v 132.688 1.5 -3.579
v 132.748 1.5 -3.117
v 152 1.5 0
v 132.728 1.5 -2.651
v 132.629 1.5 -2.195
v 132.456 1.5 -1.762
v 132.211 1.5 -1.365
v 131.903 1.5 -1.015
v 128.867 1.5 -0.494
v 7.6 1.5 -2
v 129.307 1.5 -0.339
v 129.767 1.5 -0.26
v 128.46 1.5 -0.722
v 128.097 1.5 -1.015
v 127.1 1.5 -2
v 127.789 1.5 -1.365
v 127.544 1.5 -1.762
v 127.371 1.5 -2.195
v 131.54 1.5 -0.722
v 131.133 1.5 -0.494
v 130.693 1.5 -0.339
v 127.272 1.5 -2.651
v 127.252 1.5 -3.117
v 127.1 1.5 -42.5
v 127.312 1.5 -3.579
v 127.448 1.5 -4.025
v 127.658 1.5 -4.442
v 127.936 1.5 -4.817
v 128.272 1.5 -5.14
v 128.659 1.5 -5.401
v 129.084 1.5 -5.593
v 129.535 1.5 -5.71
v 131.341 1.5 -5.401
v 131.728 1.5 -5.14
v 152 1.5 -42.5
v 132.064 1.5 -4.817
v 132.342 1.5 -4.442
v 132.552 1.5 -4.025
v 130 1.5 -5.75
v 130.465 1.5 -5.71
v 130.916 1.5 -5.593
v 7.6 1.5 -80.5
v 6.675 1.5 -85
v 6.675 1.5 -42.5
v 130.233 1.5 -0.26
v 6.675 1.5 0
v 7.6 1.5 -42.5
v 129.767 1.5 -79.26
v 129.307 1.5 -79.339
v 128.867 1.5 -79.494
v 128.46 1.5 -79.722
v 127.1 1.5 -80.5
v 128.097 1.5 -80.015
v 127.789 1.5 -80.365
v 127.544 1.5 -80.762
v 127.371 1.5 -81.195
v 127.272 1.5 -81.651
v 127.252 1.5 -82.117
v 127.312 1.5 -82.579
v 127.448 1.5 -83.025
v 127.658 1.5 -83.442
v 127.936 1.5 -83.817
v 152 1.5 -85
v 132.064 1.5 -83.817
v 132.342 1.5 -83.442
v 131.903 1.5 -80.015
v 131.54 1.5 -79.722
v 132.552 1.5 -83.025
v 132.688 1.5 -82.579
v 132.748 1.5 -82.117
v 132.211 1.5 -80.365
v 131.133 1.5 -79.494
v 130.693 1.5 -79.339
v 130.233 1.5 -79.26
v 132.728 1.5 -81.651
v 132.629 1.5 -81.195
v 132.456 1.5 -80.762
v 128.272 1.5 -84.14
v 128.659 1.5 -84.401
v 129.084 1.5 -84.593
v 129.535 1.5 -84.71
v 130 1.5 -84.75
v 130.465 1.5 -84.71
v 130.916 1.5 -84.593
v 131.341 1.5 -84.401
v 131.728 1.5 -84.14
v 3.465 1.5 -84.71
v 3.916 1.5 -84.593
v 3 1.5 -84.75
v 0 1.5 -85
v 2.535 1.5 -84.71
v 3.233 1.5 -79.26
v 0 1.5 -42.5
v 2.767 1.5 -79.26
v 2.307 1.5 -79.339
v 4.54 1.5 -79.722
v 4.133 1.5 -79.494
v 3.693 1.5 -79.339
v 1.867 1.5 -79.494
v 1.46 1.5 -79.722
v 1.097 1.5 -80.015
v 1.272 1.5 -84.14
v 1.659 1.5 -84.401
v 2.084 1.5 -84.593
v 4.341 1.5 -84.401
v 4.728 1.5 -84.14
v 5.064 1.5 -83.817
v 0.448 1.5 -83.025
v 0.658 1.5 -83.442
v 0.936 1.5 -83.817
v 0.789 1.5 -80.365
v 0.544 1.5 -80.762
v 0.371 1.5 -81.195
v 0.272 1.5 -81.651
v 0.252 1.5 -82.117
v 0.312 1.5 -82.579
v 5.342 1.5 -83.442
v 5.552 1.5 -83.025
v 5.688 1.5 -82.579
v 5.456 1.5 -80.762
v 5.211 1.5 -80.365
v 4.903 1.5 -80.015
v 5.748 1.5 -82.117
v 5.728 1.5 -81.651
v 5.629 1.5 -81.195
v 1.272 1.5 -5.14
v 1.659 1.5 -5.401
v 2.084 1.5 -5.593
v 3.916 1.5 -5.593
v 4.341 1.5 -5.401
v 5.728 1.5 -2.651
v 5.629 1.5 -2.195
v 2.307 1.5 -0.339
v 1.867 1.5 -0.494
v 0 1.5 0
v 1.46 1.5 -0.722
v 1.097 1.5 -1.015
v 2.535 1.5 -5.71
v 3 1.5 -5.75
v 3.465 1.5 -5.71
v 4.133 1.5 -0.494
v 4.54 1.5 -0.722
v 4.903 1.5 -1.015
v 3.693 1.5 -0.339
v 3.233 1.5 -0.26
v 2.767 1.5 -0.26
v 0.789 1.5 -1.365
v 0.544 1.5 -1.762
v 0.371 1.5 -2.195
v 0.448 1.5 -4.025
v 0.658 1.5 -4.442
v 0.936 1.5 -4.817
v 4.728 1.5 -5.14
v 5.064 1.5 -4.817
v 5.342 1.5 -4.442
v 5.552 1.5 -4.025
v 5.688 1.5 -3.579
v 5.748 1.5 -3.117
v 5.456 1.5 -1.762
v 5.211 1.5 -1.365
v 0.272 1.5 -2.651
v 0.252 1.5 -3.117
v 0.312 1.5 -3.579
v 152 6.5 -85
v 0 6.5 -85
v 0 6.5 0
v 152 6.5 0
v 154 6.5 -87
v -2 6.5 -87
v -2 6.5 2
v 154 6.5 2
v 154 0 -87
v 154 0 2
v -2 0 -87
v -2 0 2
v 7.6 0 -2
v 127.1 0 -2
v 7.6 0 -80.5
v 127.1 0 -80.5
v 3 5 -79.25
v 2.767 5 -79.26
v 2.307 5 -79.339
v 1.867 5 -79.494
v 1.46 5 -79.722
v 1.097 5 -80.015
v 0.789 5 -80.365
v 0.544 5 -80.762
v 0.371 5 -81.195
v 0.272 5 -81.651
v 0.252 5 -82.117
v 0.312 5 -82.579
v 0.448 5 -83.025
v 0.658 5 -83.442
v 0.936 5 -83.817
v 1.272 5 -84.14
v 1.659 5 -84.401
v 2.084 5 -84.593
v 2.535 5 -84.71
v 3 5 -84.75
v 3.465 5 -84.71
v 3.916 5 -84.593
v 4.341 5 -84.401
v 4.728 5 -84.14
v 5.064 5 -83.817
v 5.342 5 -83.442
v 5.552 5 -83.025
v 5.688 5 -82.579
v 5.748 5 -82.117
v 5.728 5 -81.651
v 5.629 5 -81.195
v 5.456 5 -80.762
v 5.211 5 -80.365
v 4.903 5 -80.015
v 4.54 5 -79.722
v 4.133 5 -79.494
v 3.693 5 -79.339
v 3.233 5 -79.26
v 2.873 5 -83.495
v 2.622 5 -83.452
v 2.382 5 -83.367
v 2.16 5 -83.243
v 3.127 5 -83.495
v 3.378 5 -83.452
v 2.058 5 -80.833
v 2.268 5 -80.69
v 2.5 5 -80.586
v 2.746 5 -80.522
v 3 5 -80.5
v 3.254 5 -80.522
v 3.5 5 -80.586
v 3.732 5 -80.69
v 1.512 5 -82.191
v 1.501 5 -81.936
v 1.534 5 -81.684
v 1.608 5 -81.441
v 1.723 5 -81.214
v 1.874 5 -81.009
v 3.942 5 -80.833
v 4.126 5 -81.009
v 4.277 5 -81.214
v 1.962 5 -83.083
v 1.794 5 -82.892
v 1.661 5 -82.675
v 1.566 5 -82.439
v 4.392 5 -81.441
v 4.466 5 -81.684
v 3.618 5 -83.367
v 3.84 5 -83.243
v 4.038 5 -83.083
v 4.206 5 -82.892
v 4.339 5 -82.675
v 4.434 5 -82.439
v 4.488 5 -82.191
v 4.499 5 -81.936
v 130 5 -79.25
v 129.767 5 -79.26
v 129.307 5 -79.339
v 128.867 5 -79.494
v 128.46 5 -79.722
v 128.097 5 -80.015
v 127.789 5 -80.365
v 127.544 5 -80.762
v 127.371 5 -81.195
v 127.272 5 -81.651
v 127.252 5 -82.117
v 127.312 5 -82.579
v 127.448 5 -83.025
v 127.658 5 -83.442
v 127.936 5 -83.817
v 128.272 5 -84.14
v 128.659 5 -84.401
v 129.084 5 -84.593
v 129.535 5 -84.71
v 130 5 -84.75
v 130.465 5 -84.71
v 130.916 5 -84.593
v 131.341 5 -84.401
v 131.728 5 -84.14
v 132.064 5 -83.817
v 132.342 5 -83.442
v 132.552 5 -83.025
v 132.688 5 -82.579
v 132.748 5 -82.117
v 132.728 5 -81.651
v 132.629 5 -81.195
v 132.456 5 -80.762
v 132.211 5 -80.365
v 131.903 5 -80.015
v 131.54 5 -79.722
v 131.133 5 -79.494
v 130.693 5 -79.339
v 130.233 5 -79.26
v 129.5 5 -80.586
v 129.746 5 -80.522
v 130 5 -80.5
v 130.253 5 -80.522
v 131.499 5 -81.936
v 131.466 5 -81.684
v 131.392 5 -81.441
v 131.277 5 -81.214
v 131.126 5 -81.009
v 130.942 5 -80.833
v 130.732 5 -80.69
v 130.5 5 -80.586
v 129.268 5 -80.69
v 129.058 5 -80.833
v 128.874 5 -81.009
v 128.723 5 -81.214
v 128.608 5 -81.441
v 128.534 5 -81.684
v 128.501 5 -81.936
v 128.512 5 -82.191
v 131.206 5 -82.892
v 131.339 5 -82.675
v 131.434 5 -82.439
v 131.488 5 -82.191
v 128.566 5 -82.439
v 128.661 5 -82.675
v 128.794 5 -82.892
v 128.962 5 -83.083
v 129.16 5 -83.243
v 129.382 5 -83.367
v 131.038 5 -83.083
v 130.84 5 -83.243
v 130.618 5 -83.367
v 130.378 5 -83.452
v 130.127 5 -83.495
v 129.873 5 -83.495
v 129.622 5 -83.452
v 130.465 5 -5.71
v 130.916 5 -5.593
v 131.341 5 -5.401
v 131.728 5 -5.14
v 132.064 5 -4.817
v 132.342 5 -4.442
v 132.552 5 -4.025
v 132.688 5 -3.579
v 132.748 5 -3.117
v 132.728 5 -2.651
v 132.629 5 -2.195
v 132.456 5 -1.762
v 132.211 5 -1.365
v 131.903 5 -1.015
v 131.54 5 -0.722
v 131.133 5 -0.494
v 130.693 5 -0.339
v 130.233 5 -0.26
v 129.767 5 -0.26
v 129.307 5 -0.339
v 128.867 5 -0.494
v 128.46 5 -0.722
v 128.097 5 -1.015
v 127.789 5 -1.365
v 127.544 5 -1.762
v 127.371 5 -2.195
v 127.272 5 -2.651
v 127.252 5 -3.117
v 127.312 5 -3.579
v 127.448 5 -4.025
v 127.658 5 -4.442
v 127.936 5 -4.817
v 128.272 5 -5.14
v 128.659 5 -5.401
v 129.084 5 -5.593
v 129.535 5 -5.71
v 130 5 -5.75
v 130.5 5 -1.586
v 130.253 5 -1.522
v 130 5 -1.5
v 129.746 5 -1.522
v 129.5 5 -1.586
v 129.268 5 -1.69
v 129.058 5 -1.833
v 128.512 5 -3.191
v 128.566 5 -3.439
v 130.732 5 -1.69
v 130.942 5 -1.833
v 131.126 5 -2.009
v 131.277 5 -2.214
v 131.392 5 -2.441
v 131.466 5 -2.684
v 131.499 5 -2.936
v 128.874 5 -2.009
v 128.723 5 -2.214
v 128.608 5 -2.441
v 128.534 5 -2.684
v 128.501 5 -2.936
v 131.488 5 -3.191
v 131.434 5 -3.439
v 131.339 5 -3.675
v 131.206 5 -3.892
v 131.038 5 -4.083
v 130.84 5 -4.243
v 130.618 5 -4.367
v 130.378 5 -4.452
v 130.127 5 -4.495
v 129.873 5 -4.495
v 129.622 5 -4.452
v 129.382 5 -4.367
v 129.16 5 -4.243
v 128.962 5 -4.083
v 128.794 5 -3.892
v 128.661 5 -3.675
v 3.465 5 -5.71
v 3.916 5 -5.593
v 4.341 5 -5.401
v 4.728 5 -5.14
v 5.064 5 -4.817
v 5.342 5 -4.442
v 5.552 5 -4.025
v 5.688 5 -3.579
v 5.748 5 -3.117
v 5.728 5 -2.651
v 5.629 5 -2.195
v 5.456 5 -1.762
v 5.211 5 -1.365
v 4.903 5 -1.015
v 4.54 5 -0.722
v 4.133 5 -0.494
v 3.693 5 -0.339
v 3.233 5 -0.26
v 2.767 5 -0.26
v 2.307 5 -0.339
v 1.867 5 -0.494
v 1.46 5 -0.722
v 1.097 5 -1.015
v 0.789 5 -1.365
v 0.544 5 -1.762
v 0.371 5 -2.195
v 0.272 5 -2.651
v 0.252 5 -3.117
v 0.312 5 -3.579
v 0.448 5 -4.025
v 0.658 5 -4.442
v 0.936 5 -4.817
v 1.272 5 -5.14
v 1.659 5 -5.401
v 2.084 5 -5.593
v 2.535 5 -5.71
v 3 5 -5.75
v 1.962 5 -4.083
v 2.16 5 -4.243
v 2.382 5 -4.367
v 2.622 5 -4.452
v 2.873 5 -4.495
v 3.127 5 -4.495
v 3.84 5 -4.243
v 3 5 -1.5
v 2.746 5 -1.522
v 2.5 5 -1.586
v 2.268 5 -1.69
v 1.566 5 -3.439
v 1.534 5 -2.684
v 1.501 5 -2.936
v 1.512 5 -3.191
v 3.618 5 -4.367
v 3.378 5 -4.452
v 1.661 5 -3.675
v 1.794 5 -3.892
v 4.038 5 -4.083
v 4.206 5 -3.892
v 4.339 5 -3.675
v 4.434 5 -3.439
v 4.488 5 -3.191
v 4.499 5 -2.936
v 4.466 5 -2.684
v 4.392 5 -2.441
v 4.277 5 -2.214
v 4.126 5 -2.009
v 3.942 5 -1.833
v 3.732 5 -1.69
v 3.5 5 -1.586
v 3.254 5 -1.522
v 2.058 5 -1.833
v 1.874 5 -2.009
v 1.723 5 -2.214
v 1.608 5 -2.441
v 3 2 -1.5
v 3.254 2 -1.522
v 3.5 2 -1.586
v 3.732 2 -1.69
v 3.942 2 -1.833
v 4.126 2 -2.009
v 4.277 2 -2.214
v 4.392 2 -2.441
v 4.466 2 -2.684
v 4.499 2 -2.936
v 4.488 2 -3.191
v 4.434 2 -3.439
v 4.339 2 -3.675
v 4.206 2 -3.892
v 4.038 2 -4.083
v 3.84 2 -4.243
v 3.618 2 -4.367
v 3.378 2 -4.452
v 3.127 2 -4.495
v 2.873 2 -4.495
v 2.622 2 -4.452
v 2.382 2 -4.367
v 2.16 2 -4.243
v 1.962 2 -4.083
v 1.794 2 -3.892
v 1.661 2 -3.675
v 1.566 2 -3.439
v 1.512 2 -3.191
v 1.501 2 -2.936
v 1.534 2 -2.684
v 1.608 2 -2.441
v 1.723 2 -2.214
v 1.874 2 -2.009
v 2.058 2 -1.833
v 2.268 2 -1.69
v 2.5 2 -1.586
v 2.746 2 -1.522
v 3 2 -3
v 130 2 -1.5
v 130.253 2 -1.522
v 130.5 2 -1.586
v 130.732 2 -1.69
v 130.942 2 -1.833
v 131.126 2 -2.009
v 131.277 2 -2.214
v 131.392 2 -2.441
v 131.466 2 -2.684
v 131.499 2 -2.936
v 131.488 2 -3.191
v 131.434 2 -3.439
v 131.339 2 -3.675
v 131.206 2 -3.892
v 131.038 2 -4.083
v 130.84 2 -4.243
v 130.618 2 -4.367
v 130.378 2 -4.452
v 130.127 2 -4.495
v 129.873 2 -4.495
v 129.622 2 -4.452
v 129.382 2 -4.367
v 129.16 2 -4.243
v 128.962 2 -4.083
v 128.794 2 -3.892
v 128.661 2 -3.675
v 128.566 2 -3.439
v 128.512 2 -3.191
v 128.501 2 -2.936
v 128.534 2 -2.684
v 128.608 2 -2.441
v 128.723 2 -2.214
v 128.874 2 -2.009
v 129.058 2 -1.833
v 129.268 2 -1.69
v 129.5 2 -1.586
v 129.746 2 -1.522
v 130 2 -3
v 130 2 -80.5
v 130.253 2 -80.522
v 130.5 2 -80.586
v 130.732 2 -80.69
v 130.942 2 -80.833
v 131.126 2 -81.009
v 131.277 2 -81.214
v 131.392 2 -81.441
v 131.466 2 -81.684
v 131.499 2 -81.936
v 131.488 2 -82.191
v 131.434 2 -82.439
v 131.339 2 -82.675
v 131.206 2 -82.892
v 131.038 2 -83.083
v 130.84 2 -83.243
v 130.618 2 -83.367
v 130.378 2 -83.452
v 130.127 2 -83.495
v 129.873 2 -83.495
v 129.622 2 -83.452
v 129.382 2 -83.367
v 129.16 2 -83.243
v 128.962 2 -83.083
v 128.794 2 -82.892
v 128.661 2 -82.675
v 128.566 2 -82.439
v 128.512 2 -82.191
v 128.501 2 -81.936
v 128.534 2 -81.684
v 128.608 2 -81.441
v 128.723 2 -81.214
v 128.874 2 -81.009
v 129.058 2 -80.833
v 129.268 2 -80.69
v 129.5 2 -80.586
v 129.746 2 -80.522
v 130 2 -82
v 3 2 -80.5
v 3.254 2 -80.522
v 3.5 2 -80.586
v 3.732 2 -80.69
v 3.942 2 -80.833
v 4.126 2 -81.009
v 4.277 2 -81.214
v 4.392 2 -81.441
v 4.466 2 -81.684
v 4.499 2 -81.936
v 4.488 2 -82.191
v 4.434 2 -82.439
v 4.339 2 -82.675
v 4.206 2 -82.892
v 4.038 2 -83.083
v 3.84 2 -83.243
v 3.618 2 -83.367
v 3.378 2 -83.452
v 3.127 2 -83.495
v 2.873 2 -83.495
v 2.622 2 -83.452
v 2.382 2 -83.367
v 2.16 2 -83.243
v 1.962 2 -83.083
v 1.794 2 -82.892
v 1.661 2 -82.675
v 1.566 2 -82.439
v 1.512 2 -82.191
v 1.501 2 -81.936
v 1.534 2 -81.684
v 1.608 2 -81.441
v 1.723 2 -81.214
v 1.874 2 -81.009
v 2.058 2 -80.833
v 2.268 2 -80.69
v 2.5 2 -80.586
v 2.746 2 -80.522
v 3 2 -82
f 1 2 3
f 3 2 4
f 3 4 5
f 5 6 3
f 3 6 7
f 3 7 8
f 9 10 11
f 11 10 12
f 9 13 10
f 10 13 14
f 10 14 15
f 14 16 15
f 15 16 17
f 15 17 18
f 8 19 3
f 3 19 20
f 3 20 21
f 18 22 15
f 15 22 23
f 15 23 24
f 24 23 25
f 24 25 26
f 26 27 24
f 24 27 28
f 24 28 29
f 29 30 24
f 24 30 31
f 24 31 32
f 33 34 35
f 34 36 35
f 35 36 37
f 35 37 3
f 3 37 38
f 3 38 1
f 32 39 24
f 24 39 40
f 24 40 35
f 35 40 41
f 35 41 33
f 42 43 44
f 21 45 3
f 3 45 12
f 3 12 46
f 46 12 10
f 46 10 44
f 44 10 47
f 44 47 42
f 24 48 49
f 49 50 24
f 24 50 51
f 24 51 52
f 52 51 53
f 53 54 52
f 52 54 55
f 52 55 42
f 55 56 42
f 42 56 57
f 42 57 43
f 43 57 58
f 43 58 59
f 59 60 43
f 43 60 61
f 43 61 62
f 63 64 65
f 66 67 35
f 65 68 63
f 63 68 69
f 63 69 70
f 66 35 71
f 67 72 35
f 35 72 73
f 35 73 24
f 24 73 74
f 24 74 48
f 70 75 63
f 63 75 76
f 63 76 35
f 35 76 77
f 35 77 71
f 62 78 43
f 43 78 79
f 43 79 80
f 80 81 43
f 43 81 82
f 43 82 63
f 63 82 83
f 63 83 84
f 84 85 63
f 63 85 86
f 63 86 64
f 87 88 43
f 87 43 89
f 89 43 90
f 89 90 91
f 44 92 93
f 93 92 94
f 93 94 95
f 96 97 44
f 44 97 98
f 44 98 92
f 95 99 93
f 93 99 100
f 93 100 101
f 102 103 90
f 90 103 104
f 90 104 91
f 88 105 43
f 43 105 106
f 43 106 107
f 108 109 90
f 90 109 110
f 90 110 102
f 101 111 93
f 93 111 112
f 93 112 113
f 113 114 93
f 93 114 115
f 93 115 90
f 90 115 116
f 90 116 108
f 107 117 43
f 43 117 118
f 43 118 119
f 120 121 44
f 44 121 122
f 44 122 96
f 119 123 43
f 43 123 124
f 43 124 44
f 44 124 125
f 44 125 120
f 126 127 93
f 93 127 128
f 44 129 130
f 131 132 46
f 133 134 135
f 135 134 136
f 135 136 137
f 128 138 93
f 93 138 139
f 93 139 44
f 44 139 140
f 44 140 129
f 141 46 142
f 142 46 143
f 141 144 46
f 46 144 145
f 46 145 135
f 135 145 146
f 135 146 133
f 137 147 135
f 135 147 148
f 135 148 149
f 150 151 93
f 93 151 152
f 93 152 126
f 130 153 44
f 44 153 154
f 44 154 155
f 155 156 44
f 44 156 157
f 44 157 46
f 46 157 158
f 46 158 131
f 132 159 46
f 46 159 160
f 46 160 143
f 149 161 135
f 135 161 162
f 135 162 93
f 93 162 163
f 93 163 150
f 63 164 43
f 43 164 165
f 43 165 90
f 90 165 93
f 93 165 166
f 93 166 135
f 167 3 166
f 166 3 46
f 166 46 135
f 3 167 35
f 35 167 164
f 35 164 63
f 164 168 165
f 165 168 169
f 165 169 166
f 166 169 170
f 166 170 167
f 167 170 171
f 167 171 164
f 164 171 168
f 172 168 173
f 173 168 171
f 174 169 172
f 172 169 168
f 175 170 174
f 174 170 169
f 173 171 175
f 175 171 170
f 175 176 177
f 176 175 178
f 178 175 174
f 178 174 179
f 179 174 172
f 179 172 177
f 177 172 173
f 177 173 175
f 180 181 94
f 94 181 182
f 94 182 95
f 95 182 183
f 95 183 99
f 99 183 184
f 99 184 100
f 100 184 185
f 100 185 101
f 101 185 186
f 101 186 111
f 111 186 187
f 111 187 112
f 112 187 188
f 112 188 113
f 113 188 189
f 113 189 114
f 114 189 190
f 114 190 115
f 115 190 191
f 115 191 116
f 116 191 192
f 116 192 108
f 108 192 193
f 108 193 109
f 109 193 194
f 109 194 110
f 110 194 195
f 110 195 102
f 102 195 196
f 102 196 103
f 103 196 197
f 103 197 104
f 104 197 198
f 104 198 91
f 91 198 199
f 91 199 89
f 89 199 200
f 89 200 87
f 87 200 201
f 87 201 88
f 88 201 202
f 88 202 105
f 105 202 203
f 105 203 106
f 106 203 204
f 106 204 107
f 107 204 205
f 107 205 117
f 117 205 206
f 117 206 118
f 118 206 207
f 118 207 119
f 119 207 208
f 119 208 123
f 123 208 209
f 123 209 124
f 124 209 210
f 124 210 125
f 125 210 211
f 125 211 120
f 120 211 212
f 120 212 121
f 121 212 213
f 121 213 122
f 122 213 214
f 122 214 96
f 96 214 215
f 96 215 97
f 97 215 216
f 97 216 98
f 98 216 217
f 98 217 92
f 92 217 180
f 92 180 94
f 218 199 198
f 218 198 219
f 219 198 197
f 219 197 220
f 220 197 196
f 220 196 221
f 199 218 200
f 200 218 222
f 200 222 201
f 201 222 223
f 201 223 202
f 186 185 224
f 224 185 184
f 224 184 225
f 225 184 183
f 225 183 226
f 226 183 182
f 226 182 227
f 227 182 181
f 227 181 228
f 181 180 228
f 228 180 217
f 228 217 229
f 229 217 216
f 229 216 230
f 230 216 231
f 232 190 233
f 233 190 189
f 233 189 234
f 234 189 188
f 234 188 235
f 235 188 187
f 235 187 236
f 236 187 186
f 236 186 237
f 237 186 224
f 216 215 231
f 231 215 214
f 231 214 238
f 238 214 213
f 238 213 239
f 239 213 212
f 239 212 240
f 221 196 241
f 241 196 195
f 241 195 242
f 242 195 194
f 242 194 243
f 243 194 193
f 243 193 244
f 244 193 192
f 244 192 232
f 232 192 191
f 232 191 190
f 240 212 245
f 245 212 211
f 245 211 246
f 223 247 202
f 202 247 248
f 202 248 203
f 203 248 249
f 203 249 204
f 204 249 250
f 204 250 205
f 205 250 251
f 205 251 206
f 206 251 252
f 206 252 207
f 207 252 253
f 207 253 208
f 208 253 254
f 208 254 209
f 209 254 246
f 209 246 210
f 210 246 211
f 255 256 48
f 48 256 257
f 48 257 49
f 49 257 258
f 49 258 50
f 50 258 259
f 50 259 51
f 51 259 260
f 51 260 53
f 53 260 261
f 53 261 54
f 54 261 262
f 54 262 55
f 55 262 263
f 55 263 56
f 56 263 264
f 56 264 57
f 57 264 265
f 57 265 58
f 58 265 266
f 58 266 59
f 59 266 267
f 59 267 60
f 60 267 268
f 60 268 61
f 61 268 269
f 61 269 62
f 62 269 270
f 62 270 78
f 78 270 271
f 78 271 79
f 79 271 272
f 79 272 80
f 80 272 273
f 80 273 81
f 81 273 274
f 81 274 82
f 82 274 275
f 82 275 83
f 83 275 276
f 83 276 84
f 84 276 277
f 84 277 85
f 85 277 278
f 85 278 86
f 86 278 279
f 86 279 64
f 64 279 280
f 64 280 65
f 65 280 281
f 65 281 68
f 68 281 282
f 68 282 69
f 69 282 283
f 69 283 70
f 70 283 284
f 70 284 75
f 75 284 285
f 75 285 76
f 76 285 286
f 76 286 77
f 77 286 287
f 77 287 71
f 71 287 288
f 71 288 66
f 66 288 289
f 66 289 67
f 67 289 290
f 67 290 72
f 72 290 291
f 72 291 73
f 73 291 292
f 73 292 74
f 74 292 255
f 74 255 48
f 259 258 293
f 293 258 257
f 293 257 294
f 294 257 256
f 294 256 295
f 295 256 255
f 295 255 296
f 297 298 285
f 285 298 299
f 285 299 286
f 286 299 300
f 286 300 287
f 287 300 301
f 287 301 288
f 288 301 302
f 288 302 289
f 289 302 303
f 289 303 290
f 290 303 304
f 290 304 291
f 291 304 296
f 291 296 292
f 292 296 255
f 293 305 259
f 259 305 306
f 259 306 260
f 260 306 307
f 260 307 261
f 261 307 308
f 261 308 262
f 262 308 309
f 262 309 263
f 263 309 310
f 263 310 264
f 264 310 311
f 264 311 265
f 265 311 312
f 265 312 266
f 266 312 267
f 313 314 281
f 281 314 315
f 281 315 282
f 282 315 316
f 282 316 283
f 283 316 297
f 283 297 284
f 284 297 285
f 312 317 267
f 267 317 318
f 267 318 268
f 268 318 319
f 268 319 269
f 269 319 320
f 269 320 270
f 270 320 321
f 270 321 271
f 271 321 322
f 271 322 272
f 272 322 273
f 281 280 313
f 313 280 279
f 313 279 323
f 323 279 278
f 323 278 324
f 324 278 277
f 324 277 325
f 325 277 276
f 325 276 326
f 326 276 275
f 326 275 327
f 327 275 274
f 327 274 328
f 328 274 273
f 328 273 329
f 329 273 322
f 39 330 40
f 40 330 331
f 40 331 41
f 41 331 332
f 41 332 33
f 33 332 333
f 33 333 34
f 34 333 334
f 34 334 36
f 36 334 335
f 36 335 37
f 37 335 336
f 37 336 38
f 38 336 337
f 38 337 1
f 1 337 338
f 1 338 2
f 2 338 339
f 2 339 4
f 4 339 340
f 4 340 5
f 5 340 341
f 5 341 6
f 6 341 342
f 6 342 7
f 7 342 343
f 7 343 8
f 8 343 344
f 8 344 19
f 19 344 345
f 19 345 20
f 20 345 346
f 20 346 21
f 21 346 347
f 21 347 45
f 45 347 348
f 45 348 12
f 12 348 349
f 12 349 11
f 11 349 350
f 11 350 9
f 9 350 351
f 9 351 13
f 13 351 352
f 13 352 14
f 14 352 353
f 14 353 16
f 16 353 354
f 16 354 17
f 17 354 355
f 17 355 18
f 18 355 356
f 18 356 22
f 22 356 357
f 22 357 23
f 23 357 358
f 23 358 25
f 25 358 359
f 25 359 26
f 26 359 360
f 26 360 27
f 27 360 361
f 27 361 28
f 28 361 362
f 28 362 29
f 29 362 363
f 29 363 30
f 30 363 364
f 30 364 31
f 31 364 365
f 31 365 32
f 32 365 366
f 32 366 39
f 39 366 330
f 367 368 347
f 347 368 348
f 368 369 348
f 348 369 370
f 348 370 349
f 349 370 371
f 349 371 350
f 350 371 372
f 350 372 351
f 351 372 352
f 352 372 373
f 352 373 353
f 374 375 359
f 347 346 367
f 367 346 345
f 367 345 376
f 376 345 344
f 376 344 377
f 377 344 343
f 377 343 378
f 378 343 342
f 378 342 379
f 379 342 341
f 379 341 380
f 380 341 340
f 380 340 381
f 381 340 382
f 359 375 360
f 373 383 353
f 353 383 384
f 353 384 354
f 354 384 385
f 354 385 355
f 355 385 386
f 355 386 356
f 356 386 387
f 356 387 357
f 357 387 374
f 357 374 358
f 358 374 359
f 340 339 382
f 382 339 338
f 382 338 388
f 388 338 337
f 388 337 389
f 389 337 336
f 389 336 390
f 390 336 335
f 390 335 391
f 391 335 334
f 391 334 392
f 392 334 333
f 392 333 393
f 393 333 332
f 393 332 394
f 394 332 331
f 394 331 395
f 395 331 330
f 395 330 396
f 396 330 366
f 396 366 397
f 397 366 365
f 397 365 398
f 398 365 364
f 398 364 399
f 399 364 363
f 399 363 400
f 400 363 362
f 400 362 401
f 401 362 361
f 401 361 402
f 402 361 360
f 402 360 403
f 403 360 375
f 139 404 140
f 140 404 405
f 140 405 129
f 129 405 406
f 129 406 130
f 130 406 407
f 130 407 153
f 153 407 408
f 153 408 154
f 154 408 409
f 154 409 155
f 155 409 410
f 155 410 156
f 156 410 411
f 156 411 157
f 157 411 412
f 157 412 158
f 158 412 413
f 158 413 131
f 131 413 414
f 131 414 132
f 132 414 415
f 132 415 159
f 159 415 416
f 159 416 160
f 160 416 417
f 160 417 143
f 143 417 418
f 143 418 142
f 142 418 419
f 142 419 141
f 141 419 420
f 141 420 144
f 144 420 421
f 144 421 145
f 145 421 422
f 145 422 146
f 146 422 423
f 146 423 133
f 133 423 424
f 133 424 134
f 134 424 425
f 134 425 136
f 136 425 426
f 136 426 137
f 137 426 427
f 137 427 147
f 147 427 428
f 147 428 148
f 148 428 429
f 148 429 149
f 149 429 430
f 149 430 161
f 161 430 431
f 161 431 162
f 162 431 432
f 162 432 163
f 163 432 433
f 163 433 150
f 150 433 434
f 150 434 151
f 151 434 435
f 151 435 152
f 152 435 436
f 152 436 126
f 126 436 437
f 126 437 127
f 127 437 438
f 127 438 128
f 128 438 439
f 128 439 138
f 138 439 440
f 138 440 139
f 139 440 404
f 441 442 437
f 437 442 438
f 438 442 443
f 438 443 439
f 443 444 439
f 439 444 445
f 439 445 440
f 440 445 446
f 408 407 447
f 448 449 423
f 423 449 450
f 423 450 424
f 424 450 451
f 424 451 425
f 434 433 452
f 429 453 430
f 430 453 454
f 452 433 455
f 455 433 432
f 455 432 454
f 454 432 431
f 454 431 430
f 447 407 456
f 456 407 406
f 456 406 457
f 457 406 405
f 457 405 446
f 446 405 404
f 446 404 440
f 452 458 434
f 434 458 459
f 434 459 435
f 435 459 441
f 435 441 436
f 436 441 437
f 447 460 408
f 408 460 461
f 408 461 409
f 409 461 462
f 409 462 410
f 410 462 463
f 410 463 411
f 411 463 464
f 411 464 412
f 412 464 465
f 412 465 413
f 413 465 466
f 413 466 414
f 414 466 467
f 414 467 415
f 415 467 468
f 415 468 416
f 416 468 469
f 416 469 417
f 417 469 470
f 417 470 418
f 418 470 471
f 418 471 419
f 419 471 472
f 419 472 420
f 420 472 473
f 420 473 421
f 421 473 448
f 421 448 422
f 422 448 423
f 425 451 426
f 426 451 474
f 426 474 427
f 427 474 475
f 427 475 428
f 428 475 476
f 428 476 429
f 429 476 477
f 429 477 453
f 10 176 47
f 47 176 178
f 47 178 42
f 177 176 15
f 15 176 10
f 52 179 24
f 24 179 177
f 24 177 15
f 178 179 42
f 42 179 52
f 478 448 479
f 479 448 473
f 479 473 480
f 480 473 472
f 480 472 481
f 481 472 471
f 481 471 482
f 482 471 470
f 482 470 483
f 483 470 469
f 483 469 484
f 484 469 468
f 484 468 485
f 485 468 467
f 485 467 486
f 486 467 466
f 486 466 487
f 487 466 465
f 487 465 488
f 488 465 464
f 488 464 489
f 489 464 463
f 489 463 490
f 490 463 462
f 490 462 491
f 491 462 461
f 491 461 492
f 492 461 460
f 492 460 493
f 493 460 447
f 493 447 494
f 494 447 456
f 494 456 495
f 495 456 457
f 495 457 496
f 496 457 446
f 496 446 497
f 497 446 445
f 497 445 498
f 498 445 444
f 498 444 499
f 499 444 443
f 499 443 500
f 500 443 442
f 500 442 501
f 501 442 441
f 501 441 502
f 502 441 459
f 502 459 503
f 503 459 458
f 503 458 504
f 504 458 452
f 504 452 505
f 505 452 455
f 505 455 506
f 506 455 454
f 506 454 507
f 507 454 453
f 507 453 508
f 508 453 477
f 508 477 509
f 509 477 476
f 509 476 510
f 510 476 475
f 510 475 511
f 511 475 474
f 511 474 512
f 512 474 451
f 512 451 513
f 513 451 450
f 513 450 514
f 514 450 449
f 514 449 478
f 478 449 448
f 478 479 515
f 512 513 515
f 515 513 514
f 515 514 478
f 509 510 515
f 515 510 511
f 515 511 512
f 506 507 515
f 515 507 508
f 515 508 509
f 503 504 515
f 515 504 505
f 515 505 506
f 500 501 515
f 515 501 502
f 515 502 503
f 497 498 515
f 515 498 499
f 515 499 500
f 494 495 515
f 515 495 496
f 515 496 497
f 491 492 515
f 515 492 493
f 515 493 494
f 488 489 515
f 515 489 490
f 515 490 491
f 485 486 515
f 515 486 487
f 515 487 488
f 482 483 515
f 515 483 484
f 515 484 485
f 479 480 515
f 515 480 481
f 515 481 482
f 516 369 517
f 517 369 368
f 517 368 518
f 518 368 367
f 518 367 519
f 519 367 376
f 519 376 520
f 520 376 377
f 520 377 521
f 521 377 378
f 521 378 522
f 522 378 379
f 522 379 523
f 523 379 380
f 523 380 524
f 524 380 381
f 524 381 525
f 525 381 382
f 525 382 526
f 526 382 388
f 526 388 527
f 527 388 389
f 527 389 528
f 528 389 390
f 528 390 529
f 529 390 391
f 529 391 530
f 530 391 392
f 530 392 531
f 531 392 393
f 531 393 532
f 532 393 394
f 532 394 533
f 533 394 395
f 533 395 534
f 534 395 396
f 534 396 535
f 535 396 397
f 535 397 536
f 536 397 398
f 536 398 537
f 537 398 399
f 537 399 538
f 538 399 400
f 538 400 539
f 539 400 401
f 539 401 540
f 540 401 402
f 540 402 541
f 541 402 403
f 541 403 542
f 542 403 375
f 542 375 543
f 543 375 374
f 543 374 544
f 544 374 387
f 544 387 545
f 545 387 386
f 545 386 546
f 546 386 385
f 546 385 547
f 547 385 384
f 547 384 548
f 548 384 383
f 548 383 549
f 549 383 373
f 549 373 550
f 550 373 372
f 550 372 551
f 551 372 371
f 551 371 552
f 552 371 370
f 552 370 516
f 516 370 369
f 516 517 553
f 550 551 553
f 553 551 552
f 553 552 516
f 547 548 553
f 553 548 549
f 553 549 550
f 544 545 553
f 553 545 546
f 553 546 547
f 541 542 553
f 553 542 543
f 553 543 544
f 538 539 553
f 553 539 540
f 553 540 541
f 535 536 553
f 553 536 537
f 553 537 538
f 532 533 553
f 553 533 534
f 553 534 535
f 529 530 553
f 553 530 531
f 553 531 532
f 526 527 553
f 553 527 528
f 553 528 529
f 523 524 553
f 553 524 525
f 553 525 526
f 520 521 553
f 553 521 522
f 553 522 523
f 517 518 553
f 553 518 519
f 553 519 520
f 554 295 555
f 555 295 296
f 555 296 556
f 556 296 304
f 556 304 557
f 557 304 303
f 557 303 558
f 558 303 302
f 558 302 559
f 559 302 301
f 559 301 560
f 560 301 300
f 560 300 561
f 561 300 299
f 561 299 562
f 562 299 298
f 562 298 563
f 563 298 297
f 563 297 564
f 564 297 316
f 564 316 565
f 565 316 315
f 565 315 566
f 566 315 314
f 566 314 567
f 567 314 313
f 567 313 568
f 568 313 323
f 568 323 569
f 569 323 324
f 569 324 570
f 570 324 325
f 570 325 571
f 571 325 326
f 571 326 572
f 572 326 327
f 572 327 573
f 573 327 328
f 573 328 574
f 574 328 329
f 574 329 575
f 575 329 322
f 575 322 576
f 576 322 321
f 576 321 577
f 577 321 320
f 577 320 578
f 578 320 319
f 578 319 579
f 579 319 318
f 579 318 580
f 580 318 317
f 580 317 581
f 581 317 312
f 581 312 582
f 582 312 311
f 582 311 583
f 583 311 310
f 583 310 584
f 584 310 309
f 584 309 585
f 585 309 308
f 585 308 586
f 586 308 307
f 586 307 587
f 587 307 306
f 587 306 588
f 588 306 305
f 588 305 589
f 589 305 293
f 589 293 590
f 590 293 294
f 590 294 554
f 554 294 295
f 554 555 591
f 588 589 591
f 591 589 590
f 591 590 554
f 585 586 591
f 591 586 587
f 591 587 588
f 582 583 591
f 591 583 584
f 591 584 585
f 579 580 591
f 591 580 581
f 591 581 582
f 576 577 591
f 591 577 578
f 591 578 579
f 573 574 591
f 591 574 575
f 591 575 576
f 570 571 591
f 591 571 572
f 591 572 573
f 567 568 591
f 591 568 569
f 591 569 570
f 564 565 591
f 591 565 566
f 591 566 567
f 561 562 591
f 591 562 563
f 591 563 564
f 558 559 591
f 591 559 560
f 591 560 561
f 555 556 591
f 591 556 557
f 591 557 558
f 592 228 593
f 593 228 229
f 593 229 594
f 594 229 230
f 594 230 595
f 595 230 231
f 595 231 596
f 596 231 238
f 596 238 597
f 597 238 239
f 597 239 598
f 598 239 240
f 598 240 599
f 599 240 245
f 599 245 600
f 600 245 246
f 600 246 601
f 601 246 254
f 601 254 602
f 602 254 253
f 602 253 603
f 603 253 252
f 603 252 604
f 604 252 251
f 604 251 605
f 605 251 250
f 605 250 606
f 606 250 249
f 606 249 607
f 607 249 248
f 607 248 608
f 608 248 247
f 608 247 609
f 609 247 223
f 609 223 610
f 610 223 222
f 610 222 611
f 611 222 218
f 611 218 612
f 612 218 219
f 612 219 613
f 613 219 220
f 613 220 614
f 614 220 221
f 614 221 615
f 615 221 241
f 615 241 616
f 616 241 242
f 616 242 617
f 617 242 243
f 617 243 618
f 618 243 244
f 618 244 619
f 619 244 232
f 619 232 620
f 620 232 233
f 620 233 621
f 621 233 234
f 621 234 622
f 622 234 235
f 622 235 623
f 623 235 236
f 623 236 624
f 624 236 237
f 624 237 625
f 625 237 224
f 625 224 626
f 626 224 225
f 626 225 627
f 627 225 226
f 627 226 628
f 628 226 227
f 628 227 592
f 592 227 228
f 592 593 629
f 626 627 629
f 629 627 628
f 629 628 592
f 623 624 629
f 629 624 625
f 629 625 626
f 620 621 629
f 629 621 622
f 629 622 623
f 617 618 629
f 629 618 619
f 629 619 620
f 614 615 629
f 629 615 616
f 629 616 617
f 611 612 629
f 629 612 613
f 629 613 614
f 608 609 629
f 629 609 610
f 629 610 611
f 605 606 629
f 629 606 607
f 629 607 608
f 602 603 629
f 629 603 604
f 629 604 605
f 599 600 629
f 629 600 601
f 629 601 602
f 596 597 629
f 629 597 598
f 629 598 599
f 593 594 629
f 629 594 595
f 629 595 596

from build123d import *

# Parameters (mm, degrees)
CROQUIS1_W                   = 152
CROQUIS1_H                   = 85
SALIENTE_EXTRUIR1_DEPTH      = 1.5
CROQUIS2_W                   = 156
CROQUIS2_H                   = 89
CROQUIS2_W_2                 = 152
CROQUIS2_H_2                 = 85
SALIENTE_EXTRUIR3_DEPTH      = 5
SALIENTE_EXTRUIR3_DEPTH_BACK = 1.5
CROQUIS3_R                   = 2.75
SALIENTE_EXTRUIR4_DEPTH      = 3.5
CROQUIS4_W                   = 119.5
CROQUIS4_H                   = 78.5
CORTAR_EXTRUIR1_DEPTH        = 1.5
CROQUIS5_R                   = 1.5
CORTAR_EXTRUIR2_DEPTH        = 3


with BuildPart() as part:
    # Croquis1 → Saliente-Extruir1 (new body)
    with BuildSketch(Plane(origin=(0, 0, 0), x_dir=(1, 0, 0), z_dir=(0, 1, 0))):
        with Locations((76, 42.5)):
            Rectangle(CROQUIS1_W, CROQUIS1_H)
    extrude(amount=SALIENTE_EXTRUIR1_DEPTH)

    # Croquis2 → Saliente-Extruir3 (add, two sides)
    with BuildSketch(Plane(origin=(0, 1.5, 0), x_dir=(1, 0, 0), z_dir=(0, 1, 0))) as saliente_extruir3_sk:
        with Locations((76, 42.5)):
            Rectangle(CROQUIS2_W, CROQUIS2_H)
        with Locations((76, 42.5)):
            Rectangle(CROQUIS2_W_2, CROQUIS2_H_2, mode=Mode.SUBTRACT)
    extrude(amount=SALIENTE_EXTRUIR3_DEPTH)
    extrude(saliente_extruir3_sk.sketch, amount=-SALIENTE_EXTRUIR3_DEPTH_BACK)

    # Croquis3 → Saliente-Extruir4 (add)
    with BuildSketch(Plane(origin=(0, 1.5, 0), x_dir=(1, 0, 0), z_dir=(0, 1, 0))):
        with Locations((3, 82)):
            Circle(CROQUIS3_R)
        with Locations((3, 3)):
            Circle(CROQUIS3_R)
        with Locations((130, 82)):
            Circle(CROQUIS3_R)
        with Locations((130, 3)):
            Circle(CROQUIS3_R)
    extrude(amount=SALIENTE_EXTRUIR4_DEPTH)

    # Croquis4 → Cortar-Extruir1 (cut)
    with BuildSketch(Plane.XZ):
        with Locations((67.35, -41.25)):
            Rectangle(CROQUIS4_W, CROQUIS4_H)
    extrude(amount=-CORTAR_EXTRUIR1_DEPTH, mode=Mode.SUBTRACT)

    # Croquis5 → Cortar-Extruir2 (cut)
    with BuildSketch(Plane(origin=(0, 5, 0), x_dir=(1, 0, 0), z_dir=(0, 1, 0))):
        with Locations((130, 3)):
            Circle(CROQUIS5_R)
        with Locations((3, 3)):
            Circle(CROQUIS5_R)
        with Locations((3, 82)):
            Circle(CROQUIS5_R)
        with Locations((130, 82)):
            Circle(CROQUIS5_R)
    extrude(amount=-CORTAR_EXTRUIR2_DEPTH, mode=Mode.SUBTRACT)


solid = part.part
